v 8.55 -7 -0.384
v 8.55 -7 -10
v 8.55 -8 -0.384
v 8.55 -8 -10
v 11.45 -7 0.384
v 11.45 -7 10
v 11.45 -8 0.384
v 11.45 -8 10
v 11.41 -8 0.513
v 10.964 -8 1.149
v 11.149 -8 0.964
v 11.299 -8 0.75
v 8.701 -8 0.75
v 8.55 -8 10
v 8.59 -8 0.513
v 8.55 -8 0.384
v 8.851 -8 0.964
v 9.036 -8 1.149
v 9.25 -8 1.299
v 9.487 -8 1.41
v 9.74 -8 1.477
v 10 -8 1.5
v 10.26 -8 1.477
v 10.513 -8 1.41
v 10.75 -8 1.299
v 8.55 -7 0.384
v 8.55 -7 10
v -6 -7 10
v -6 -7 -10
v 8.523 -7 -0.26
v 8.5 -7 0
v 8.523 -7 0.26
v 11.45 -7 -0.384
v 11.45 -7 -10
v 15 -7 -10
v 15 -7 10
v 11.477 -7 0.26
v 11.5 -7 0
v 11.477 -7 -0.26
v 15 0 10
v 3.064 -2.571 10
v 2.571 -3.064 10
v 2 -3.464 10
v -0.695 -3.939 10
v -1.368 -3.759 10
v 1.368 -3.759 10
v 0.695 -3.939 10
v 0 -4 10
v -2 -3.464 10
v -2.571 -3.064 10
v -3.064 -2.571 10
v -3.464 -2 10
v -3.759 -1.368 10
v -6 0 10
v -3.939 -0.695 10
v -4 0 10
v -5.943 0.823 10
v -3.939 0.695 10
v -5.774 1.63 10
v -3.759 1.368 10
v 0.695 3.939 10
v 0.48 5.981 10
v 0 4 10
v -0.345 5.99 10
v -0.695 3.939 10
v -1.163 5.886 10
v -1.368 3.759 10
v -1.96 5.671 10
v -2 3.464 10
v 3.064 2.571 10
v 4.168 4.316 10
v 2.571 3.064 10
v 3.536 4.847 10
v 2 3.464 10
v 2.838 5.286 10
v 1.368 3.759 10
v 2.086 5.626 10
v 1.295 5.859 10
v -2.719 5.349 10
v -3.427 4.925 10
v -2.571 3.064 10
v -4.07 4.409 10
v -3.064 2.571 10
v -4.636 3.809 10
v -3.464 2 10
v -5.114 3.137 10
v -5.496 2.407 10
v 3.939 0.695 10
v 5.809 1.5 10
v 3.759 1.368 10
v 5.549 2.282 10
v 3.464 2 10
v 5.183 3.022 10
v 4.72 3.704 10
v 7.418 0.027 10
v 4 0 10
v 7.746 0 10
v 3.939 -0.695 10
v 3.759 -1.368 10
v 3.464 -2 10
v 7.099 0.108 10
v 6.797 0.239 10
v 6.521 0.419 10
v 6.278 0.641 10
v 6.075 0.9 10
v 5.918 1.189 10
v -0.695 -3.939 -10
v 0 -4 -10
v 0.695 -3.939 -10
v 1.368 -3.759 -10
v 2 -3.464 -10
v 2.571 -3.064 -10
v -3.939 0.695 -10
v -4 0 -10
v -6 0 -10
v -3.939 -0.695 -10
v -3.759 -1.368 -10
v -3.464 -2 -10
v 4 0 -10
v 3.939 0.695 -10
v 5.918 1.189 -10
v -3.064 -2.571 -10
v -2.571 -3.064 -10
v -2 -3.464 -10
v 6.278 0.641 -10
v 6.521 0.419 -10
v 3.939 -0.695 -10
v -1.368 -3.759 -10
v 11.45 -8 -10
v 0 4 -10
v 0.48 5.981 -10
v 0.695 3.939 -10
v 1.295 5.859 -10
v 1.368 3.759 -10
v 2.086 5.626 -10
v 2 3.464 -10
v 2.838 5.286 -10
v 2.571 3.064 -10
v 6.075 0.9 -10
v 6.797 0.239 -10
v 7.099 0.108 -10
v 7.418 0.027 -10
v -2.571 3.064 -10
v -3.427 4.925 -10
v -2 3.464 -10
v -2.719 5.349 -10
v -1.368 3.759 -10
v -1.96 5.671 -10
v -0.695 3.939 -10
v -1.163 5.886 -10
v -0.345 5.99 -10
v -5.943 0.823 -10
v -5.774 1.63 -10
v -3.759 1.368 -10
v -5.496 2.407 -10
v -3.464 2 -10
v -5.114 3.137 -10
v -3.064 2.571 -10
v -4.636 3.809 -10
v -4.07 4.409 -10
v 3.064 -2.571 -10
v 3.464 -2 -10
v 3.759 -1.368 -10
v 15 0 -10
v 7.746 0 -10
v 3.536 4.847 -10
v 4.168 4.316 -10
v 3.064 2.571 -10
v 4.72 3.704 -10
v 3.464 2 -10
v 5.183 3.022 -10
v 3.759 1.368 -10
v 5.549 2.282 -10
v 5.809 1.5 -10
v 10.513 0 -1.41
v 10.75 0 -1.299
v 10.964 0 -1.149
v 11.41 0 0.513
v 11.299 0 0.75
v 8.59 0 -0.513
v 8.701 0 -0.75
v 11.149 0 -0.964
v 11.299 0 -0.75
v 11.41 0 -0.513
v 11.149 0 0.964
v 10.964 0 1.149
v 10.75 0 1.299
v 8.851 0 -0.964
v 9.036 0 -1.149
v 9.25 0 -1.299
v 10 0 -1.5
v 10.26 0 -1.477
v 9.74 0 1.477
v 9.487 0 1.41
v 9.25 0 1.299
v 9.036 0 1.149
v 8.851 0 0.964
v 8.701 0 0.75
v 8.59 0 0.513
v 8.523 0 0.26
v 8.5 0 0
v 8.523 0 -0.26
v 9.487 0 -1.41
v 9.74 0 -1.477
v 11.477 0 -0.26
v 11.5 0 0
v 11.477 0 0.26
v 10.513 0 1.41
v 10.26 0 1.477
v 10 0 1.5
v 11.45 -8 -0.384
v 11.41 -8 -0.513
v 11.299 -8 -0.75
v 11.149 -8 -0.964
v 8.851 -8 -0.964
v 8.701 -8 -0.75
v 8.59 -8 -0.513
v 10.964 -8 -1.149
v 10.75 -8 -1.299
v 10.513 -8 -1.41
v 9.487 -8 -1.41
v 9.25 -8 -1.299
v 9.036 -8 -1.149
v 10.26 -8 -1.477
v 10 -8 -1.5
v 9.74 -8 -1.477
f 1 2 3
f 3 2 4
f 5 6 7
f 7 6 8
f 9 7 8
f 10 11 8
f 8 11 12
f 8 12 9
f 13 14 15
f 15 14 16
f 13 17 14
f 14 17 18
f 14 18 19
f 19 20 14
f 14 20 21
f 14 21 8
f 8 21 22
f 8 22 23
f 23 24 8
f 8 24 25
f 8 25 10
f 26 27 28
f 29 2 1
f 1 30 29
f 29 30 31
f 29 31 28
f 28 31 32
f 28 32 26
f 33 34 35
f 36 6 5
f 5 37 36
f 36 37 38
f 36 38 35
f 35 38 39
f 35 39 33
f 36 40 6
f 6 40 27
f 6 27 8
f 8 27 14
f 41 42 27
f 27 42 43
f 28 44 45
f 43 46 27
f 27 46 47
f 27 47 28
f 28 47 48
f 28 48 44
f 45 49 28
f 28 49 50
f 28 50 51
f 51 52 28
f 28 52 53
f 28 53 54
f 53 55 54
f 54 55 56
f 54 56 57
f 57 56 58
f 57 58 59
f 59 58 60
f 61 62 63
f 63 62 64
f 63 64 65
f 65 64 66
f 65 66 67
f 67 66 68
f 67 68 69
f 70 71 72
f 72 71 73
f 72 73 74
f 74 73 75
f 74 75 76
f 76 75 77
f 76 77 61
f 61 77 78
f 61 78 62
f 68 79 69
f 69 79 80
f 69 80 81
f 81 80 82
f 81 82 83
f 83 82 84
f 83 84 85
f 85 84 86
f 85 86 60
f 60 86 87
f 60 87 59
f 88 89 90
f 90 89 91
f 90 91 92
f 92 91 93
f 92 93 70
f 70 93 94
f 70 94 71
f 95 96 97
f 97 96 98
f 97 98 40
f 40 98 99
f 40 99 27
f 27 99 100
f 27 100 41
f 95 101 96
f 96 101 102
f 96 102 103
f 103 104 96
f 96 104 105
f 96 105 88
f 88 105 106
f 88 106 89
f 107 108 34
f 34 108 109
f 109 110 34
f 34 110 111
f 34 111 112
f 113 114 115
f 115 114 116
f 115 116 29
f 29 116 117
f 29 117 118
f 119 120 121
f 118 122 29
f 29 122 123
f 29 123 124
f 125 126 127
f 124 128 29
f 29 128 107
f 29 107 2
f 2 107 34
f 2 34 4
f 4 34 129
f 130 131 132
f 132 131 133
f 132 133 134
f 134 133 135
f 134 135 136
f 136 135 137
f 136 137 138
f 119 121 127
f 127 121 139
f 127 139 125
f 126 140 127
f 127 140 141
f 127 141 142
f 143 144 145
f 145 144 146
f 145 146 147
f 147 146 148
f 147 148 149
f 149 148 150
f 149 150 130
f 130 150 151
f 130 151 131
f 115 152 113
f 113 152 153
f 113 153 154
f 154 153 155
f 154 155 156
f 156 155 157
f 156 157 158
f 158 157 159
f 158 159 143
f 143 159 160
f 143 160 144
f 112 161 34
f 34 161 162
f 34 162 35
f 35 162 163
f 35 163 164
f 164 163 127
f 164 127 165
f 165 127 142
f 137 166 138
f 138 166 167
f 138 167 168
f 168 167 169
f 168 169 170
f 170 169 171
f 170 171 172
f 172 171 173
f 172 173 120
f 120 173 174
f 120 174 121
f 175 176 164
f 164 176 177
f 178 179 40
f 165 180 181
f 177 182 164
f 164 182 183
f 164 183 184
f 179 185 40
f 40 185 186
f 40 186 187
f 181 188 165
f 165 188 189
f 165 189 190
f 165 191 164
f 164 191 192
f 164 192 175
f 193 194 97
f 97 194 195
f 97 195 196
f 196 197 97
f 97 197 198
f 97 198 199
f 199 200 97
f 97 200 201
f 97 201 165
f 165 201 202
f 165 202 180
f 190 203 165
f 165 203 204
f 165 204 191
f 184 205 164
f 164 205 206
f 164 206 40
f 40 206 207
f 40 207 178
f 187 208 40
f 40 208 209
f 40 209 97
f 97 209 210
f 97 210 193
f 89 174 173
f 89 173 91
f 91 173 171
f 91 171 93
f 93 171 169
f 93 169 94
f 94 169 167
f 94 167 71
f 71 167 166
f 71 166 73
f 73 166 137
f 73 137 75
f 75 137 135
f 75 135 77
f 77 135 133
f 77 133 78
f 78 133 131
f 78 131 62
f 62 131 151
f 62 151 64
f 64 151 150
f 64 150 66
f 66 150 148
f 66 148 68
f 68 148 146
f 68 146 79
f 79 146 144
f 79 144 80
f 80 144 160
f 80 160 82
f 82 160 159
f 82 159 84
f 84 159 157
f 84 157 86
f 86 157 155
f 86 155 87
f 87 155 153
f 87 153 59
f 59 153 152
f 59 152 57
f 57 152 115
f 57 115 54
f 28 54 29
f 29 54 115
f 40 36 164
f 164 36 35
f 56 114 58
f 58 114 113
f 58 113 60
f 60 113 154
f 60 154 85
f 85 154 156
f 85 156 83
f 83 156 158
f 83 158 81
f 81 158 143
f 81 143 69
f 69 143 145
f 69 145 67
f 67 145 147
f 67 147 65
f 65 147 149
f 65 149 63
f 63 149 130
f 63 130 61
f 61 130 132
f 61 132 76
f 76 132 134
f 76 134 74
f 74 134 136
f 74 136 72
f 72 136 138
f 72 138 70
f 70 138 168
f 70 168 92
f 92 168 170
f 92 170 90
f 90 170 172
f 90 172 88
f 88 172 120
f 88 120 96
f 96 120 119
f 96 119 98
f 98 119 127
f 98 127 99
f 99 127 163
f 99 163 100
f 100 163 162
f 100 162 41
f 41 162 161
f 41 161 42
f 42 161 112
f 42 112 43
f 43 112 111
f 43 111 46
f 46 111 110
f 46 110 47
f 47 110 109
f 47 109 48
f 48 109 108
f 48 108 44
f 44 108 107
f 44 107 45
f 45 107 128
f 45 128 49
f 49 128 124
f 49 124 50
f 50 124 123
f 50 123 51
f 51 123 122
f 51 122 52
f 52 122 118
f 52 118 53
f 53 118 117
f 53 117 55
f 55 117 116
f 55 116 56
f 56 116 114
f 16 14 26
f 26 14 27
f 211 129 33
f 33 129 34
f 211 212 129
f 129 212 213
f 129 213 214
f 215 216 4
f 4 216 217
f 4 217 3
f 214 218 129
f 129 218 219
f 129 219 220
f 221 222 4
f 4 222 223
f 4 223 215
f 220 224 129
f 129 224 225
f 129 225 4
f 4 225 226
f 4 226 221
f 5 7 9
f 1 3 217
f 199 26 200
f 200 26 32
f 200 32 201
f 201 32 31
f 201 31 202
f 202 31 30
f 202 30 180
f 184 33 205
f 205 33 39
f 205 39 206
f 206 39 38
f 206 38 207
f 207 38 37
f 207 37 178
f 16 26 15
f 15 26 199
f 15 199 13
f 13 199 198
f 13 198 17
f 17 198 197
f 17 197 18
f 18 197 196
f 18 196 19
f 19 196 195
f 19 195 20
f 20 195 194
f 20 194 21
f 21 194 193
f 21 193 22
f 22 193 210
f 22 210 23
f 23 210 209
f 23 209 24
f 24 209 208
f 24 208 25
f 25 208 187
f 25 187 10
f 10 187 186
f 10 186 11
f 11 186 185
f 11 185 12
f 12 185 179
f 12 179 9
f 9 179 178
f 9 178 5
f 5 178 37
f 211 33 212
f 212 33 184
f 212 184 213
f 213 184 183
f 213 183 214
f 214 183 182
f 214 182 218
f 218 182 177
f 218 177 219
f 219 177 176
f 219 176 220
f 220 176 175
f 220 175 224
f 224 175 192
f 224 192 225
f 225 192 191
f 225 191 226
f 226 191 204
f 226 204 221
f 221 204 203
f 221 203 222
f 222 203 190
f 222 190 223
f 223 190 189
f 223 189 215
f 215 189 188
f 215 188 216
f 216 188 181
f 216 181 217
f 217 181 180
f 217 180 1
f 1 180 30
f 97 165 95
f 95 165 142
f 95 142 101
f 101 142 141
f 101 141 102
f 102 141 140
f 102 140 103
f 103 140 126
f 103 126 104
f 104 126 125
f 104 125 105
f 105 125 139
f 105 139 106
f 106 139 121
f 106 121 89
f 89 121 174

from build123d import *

# Parameters (mm, degrees)
SKETCH1_R                       = 4
MAIN_DEPTH                      = 10
SKETCH3_W                       = 2.9
SKETCH3_H                       = 20
MAKERBEAMRECTANGULARGUIDE_DEPTH = 1
SKETCH4_R                       = 1.5
MAKERBEAMFIXHOLE_DEPTH          = 9
FILLET1_R                       = 2


with BuildPart() as part:
    # Sketch1 → Main (new body, symmetric)
    with BuildSketch(Plane.XY):
        with BuildLine():
            Line((-6, 0), (-6, -7))
            Line((-6, -7), (15, -7))
            Line((15, -7), (15, 0))
            Line((15, 0), (6, 0))
            ThreePointArc((6, 0), (0, 6), (-6, 0))
        make_face()
        Circle(SKETCH1_R, mode=Mode.SUBTRACT)
    extrude(amount=MAIN_DEPTH, both=True)

    # Sketch3 → MakerBeamRectangularGuide (add)
    with BuildSketch(Plane(origin=(0, -7, 0), x_dir=(-1, 0, 0), z_dir=(0, -1, 0))):
        with Locations((-10, 0)):
            Rectangle(SKETCH3_W, SKETCH3_H)
    extrude(amount=MAKERBEAMRECTANGULARGUIDE_DEPTH)

    # Sketch4 → MakerBeamFixHole (cut, through all)
    with BuildSketch(Plane(origin=(0, 0, 0), x_dir=(1, 0, 0), z_dir=(0, 1, 0))):
        with Locations((10, 0)):
            Circle(SKETCH4_R)
    extrude(amount=-MAKERBEAMFIXHOLE_DEPTH, mode=Mode.SUBTRACT)

    # Fillet1
    fillet1_edges = [part.edges().sort_by_distance(p)[0] for p in [
        (6, 0, 0),
    ]]
    fillet(fillet1_edges, radius=FILLET1_R)


solid = part.part
